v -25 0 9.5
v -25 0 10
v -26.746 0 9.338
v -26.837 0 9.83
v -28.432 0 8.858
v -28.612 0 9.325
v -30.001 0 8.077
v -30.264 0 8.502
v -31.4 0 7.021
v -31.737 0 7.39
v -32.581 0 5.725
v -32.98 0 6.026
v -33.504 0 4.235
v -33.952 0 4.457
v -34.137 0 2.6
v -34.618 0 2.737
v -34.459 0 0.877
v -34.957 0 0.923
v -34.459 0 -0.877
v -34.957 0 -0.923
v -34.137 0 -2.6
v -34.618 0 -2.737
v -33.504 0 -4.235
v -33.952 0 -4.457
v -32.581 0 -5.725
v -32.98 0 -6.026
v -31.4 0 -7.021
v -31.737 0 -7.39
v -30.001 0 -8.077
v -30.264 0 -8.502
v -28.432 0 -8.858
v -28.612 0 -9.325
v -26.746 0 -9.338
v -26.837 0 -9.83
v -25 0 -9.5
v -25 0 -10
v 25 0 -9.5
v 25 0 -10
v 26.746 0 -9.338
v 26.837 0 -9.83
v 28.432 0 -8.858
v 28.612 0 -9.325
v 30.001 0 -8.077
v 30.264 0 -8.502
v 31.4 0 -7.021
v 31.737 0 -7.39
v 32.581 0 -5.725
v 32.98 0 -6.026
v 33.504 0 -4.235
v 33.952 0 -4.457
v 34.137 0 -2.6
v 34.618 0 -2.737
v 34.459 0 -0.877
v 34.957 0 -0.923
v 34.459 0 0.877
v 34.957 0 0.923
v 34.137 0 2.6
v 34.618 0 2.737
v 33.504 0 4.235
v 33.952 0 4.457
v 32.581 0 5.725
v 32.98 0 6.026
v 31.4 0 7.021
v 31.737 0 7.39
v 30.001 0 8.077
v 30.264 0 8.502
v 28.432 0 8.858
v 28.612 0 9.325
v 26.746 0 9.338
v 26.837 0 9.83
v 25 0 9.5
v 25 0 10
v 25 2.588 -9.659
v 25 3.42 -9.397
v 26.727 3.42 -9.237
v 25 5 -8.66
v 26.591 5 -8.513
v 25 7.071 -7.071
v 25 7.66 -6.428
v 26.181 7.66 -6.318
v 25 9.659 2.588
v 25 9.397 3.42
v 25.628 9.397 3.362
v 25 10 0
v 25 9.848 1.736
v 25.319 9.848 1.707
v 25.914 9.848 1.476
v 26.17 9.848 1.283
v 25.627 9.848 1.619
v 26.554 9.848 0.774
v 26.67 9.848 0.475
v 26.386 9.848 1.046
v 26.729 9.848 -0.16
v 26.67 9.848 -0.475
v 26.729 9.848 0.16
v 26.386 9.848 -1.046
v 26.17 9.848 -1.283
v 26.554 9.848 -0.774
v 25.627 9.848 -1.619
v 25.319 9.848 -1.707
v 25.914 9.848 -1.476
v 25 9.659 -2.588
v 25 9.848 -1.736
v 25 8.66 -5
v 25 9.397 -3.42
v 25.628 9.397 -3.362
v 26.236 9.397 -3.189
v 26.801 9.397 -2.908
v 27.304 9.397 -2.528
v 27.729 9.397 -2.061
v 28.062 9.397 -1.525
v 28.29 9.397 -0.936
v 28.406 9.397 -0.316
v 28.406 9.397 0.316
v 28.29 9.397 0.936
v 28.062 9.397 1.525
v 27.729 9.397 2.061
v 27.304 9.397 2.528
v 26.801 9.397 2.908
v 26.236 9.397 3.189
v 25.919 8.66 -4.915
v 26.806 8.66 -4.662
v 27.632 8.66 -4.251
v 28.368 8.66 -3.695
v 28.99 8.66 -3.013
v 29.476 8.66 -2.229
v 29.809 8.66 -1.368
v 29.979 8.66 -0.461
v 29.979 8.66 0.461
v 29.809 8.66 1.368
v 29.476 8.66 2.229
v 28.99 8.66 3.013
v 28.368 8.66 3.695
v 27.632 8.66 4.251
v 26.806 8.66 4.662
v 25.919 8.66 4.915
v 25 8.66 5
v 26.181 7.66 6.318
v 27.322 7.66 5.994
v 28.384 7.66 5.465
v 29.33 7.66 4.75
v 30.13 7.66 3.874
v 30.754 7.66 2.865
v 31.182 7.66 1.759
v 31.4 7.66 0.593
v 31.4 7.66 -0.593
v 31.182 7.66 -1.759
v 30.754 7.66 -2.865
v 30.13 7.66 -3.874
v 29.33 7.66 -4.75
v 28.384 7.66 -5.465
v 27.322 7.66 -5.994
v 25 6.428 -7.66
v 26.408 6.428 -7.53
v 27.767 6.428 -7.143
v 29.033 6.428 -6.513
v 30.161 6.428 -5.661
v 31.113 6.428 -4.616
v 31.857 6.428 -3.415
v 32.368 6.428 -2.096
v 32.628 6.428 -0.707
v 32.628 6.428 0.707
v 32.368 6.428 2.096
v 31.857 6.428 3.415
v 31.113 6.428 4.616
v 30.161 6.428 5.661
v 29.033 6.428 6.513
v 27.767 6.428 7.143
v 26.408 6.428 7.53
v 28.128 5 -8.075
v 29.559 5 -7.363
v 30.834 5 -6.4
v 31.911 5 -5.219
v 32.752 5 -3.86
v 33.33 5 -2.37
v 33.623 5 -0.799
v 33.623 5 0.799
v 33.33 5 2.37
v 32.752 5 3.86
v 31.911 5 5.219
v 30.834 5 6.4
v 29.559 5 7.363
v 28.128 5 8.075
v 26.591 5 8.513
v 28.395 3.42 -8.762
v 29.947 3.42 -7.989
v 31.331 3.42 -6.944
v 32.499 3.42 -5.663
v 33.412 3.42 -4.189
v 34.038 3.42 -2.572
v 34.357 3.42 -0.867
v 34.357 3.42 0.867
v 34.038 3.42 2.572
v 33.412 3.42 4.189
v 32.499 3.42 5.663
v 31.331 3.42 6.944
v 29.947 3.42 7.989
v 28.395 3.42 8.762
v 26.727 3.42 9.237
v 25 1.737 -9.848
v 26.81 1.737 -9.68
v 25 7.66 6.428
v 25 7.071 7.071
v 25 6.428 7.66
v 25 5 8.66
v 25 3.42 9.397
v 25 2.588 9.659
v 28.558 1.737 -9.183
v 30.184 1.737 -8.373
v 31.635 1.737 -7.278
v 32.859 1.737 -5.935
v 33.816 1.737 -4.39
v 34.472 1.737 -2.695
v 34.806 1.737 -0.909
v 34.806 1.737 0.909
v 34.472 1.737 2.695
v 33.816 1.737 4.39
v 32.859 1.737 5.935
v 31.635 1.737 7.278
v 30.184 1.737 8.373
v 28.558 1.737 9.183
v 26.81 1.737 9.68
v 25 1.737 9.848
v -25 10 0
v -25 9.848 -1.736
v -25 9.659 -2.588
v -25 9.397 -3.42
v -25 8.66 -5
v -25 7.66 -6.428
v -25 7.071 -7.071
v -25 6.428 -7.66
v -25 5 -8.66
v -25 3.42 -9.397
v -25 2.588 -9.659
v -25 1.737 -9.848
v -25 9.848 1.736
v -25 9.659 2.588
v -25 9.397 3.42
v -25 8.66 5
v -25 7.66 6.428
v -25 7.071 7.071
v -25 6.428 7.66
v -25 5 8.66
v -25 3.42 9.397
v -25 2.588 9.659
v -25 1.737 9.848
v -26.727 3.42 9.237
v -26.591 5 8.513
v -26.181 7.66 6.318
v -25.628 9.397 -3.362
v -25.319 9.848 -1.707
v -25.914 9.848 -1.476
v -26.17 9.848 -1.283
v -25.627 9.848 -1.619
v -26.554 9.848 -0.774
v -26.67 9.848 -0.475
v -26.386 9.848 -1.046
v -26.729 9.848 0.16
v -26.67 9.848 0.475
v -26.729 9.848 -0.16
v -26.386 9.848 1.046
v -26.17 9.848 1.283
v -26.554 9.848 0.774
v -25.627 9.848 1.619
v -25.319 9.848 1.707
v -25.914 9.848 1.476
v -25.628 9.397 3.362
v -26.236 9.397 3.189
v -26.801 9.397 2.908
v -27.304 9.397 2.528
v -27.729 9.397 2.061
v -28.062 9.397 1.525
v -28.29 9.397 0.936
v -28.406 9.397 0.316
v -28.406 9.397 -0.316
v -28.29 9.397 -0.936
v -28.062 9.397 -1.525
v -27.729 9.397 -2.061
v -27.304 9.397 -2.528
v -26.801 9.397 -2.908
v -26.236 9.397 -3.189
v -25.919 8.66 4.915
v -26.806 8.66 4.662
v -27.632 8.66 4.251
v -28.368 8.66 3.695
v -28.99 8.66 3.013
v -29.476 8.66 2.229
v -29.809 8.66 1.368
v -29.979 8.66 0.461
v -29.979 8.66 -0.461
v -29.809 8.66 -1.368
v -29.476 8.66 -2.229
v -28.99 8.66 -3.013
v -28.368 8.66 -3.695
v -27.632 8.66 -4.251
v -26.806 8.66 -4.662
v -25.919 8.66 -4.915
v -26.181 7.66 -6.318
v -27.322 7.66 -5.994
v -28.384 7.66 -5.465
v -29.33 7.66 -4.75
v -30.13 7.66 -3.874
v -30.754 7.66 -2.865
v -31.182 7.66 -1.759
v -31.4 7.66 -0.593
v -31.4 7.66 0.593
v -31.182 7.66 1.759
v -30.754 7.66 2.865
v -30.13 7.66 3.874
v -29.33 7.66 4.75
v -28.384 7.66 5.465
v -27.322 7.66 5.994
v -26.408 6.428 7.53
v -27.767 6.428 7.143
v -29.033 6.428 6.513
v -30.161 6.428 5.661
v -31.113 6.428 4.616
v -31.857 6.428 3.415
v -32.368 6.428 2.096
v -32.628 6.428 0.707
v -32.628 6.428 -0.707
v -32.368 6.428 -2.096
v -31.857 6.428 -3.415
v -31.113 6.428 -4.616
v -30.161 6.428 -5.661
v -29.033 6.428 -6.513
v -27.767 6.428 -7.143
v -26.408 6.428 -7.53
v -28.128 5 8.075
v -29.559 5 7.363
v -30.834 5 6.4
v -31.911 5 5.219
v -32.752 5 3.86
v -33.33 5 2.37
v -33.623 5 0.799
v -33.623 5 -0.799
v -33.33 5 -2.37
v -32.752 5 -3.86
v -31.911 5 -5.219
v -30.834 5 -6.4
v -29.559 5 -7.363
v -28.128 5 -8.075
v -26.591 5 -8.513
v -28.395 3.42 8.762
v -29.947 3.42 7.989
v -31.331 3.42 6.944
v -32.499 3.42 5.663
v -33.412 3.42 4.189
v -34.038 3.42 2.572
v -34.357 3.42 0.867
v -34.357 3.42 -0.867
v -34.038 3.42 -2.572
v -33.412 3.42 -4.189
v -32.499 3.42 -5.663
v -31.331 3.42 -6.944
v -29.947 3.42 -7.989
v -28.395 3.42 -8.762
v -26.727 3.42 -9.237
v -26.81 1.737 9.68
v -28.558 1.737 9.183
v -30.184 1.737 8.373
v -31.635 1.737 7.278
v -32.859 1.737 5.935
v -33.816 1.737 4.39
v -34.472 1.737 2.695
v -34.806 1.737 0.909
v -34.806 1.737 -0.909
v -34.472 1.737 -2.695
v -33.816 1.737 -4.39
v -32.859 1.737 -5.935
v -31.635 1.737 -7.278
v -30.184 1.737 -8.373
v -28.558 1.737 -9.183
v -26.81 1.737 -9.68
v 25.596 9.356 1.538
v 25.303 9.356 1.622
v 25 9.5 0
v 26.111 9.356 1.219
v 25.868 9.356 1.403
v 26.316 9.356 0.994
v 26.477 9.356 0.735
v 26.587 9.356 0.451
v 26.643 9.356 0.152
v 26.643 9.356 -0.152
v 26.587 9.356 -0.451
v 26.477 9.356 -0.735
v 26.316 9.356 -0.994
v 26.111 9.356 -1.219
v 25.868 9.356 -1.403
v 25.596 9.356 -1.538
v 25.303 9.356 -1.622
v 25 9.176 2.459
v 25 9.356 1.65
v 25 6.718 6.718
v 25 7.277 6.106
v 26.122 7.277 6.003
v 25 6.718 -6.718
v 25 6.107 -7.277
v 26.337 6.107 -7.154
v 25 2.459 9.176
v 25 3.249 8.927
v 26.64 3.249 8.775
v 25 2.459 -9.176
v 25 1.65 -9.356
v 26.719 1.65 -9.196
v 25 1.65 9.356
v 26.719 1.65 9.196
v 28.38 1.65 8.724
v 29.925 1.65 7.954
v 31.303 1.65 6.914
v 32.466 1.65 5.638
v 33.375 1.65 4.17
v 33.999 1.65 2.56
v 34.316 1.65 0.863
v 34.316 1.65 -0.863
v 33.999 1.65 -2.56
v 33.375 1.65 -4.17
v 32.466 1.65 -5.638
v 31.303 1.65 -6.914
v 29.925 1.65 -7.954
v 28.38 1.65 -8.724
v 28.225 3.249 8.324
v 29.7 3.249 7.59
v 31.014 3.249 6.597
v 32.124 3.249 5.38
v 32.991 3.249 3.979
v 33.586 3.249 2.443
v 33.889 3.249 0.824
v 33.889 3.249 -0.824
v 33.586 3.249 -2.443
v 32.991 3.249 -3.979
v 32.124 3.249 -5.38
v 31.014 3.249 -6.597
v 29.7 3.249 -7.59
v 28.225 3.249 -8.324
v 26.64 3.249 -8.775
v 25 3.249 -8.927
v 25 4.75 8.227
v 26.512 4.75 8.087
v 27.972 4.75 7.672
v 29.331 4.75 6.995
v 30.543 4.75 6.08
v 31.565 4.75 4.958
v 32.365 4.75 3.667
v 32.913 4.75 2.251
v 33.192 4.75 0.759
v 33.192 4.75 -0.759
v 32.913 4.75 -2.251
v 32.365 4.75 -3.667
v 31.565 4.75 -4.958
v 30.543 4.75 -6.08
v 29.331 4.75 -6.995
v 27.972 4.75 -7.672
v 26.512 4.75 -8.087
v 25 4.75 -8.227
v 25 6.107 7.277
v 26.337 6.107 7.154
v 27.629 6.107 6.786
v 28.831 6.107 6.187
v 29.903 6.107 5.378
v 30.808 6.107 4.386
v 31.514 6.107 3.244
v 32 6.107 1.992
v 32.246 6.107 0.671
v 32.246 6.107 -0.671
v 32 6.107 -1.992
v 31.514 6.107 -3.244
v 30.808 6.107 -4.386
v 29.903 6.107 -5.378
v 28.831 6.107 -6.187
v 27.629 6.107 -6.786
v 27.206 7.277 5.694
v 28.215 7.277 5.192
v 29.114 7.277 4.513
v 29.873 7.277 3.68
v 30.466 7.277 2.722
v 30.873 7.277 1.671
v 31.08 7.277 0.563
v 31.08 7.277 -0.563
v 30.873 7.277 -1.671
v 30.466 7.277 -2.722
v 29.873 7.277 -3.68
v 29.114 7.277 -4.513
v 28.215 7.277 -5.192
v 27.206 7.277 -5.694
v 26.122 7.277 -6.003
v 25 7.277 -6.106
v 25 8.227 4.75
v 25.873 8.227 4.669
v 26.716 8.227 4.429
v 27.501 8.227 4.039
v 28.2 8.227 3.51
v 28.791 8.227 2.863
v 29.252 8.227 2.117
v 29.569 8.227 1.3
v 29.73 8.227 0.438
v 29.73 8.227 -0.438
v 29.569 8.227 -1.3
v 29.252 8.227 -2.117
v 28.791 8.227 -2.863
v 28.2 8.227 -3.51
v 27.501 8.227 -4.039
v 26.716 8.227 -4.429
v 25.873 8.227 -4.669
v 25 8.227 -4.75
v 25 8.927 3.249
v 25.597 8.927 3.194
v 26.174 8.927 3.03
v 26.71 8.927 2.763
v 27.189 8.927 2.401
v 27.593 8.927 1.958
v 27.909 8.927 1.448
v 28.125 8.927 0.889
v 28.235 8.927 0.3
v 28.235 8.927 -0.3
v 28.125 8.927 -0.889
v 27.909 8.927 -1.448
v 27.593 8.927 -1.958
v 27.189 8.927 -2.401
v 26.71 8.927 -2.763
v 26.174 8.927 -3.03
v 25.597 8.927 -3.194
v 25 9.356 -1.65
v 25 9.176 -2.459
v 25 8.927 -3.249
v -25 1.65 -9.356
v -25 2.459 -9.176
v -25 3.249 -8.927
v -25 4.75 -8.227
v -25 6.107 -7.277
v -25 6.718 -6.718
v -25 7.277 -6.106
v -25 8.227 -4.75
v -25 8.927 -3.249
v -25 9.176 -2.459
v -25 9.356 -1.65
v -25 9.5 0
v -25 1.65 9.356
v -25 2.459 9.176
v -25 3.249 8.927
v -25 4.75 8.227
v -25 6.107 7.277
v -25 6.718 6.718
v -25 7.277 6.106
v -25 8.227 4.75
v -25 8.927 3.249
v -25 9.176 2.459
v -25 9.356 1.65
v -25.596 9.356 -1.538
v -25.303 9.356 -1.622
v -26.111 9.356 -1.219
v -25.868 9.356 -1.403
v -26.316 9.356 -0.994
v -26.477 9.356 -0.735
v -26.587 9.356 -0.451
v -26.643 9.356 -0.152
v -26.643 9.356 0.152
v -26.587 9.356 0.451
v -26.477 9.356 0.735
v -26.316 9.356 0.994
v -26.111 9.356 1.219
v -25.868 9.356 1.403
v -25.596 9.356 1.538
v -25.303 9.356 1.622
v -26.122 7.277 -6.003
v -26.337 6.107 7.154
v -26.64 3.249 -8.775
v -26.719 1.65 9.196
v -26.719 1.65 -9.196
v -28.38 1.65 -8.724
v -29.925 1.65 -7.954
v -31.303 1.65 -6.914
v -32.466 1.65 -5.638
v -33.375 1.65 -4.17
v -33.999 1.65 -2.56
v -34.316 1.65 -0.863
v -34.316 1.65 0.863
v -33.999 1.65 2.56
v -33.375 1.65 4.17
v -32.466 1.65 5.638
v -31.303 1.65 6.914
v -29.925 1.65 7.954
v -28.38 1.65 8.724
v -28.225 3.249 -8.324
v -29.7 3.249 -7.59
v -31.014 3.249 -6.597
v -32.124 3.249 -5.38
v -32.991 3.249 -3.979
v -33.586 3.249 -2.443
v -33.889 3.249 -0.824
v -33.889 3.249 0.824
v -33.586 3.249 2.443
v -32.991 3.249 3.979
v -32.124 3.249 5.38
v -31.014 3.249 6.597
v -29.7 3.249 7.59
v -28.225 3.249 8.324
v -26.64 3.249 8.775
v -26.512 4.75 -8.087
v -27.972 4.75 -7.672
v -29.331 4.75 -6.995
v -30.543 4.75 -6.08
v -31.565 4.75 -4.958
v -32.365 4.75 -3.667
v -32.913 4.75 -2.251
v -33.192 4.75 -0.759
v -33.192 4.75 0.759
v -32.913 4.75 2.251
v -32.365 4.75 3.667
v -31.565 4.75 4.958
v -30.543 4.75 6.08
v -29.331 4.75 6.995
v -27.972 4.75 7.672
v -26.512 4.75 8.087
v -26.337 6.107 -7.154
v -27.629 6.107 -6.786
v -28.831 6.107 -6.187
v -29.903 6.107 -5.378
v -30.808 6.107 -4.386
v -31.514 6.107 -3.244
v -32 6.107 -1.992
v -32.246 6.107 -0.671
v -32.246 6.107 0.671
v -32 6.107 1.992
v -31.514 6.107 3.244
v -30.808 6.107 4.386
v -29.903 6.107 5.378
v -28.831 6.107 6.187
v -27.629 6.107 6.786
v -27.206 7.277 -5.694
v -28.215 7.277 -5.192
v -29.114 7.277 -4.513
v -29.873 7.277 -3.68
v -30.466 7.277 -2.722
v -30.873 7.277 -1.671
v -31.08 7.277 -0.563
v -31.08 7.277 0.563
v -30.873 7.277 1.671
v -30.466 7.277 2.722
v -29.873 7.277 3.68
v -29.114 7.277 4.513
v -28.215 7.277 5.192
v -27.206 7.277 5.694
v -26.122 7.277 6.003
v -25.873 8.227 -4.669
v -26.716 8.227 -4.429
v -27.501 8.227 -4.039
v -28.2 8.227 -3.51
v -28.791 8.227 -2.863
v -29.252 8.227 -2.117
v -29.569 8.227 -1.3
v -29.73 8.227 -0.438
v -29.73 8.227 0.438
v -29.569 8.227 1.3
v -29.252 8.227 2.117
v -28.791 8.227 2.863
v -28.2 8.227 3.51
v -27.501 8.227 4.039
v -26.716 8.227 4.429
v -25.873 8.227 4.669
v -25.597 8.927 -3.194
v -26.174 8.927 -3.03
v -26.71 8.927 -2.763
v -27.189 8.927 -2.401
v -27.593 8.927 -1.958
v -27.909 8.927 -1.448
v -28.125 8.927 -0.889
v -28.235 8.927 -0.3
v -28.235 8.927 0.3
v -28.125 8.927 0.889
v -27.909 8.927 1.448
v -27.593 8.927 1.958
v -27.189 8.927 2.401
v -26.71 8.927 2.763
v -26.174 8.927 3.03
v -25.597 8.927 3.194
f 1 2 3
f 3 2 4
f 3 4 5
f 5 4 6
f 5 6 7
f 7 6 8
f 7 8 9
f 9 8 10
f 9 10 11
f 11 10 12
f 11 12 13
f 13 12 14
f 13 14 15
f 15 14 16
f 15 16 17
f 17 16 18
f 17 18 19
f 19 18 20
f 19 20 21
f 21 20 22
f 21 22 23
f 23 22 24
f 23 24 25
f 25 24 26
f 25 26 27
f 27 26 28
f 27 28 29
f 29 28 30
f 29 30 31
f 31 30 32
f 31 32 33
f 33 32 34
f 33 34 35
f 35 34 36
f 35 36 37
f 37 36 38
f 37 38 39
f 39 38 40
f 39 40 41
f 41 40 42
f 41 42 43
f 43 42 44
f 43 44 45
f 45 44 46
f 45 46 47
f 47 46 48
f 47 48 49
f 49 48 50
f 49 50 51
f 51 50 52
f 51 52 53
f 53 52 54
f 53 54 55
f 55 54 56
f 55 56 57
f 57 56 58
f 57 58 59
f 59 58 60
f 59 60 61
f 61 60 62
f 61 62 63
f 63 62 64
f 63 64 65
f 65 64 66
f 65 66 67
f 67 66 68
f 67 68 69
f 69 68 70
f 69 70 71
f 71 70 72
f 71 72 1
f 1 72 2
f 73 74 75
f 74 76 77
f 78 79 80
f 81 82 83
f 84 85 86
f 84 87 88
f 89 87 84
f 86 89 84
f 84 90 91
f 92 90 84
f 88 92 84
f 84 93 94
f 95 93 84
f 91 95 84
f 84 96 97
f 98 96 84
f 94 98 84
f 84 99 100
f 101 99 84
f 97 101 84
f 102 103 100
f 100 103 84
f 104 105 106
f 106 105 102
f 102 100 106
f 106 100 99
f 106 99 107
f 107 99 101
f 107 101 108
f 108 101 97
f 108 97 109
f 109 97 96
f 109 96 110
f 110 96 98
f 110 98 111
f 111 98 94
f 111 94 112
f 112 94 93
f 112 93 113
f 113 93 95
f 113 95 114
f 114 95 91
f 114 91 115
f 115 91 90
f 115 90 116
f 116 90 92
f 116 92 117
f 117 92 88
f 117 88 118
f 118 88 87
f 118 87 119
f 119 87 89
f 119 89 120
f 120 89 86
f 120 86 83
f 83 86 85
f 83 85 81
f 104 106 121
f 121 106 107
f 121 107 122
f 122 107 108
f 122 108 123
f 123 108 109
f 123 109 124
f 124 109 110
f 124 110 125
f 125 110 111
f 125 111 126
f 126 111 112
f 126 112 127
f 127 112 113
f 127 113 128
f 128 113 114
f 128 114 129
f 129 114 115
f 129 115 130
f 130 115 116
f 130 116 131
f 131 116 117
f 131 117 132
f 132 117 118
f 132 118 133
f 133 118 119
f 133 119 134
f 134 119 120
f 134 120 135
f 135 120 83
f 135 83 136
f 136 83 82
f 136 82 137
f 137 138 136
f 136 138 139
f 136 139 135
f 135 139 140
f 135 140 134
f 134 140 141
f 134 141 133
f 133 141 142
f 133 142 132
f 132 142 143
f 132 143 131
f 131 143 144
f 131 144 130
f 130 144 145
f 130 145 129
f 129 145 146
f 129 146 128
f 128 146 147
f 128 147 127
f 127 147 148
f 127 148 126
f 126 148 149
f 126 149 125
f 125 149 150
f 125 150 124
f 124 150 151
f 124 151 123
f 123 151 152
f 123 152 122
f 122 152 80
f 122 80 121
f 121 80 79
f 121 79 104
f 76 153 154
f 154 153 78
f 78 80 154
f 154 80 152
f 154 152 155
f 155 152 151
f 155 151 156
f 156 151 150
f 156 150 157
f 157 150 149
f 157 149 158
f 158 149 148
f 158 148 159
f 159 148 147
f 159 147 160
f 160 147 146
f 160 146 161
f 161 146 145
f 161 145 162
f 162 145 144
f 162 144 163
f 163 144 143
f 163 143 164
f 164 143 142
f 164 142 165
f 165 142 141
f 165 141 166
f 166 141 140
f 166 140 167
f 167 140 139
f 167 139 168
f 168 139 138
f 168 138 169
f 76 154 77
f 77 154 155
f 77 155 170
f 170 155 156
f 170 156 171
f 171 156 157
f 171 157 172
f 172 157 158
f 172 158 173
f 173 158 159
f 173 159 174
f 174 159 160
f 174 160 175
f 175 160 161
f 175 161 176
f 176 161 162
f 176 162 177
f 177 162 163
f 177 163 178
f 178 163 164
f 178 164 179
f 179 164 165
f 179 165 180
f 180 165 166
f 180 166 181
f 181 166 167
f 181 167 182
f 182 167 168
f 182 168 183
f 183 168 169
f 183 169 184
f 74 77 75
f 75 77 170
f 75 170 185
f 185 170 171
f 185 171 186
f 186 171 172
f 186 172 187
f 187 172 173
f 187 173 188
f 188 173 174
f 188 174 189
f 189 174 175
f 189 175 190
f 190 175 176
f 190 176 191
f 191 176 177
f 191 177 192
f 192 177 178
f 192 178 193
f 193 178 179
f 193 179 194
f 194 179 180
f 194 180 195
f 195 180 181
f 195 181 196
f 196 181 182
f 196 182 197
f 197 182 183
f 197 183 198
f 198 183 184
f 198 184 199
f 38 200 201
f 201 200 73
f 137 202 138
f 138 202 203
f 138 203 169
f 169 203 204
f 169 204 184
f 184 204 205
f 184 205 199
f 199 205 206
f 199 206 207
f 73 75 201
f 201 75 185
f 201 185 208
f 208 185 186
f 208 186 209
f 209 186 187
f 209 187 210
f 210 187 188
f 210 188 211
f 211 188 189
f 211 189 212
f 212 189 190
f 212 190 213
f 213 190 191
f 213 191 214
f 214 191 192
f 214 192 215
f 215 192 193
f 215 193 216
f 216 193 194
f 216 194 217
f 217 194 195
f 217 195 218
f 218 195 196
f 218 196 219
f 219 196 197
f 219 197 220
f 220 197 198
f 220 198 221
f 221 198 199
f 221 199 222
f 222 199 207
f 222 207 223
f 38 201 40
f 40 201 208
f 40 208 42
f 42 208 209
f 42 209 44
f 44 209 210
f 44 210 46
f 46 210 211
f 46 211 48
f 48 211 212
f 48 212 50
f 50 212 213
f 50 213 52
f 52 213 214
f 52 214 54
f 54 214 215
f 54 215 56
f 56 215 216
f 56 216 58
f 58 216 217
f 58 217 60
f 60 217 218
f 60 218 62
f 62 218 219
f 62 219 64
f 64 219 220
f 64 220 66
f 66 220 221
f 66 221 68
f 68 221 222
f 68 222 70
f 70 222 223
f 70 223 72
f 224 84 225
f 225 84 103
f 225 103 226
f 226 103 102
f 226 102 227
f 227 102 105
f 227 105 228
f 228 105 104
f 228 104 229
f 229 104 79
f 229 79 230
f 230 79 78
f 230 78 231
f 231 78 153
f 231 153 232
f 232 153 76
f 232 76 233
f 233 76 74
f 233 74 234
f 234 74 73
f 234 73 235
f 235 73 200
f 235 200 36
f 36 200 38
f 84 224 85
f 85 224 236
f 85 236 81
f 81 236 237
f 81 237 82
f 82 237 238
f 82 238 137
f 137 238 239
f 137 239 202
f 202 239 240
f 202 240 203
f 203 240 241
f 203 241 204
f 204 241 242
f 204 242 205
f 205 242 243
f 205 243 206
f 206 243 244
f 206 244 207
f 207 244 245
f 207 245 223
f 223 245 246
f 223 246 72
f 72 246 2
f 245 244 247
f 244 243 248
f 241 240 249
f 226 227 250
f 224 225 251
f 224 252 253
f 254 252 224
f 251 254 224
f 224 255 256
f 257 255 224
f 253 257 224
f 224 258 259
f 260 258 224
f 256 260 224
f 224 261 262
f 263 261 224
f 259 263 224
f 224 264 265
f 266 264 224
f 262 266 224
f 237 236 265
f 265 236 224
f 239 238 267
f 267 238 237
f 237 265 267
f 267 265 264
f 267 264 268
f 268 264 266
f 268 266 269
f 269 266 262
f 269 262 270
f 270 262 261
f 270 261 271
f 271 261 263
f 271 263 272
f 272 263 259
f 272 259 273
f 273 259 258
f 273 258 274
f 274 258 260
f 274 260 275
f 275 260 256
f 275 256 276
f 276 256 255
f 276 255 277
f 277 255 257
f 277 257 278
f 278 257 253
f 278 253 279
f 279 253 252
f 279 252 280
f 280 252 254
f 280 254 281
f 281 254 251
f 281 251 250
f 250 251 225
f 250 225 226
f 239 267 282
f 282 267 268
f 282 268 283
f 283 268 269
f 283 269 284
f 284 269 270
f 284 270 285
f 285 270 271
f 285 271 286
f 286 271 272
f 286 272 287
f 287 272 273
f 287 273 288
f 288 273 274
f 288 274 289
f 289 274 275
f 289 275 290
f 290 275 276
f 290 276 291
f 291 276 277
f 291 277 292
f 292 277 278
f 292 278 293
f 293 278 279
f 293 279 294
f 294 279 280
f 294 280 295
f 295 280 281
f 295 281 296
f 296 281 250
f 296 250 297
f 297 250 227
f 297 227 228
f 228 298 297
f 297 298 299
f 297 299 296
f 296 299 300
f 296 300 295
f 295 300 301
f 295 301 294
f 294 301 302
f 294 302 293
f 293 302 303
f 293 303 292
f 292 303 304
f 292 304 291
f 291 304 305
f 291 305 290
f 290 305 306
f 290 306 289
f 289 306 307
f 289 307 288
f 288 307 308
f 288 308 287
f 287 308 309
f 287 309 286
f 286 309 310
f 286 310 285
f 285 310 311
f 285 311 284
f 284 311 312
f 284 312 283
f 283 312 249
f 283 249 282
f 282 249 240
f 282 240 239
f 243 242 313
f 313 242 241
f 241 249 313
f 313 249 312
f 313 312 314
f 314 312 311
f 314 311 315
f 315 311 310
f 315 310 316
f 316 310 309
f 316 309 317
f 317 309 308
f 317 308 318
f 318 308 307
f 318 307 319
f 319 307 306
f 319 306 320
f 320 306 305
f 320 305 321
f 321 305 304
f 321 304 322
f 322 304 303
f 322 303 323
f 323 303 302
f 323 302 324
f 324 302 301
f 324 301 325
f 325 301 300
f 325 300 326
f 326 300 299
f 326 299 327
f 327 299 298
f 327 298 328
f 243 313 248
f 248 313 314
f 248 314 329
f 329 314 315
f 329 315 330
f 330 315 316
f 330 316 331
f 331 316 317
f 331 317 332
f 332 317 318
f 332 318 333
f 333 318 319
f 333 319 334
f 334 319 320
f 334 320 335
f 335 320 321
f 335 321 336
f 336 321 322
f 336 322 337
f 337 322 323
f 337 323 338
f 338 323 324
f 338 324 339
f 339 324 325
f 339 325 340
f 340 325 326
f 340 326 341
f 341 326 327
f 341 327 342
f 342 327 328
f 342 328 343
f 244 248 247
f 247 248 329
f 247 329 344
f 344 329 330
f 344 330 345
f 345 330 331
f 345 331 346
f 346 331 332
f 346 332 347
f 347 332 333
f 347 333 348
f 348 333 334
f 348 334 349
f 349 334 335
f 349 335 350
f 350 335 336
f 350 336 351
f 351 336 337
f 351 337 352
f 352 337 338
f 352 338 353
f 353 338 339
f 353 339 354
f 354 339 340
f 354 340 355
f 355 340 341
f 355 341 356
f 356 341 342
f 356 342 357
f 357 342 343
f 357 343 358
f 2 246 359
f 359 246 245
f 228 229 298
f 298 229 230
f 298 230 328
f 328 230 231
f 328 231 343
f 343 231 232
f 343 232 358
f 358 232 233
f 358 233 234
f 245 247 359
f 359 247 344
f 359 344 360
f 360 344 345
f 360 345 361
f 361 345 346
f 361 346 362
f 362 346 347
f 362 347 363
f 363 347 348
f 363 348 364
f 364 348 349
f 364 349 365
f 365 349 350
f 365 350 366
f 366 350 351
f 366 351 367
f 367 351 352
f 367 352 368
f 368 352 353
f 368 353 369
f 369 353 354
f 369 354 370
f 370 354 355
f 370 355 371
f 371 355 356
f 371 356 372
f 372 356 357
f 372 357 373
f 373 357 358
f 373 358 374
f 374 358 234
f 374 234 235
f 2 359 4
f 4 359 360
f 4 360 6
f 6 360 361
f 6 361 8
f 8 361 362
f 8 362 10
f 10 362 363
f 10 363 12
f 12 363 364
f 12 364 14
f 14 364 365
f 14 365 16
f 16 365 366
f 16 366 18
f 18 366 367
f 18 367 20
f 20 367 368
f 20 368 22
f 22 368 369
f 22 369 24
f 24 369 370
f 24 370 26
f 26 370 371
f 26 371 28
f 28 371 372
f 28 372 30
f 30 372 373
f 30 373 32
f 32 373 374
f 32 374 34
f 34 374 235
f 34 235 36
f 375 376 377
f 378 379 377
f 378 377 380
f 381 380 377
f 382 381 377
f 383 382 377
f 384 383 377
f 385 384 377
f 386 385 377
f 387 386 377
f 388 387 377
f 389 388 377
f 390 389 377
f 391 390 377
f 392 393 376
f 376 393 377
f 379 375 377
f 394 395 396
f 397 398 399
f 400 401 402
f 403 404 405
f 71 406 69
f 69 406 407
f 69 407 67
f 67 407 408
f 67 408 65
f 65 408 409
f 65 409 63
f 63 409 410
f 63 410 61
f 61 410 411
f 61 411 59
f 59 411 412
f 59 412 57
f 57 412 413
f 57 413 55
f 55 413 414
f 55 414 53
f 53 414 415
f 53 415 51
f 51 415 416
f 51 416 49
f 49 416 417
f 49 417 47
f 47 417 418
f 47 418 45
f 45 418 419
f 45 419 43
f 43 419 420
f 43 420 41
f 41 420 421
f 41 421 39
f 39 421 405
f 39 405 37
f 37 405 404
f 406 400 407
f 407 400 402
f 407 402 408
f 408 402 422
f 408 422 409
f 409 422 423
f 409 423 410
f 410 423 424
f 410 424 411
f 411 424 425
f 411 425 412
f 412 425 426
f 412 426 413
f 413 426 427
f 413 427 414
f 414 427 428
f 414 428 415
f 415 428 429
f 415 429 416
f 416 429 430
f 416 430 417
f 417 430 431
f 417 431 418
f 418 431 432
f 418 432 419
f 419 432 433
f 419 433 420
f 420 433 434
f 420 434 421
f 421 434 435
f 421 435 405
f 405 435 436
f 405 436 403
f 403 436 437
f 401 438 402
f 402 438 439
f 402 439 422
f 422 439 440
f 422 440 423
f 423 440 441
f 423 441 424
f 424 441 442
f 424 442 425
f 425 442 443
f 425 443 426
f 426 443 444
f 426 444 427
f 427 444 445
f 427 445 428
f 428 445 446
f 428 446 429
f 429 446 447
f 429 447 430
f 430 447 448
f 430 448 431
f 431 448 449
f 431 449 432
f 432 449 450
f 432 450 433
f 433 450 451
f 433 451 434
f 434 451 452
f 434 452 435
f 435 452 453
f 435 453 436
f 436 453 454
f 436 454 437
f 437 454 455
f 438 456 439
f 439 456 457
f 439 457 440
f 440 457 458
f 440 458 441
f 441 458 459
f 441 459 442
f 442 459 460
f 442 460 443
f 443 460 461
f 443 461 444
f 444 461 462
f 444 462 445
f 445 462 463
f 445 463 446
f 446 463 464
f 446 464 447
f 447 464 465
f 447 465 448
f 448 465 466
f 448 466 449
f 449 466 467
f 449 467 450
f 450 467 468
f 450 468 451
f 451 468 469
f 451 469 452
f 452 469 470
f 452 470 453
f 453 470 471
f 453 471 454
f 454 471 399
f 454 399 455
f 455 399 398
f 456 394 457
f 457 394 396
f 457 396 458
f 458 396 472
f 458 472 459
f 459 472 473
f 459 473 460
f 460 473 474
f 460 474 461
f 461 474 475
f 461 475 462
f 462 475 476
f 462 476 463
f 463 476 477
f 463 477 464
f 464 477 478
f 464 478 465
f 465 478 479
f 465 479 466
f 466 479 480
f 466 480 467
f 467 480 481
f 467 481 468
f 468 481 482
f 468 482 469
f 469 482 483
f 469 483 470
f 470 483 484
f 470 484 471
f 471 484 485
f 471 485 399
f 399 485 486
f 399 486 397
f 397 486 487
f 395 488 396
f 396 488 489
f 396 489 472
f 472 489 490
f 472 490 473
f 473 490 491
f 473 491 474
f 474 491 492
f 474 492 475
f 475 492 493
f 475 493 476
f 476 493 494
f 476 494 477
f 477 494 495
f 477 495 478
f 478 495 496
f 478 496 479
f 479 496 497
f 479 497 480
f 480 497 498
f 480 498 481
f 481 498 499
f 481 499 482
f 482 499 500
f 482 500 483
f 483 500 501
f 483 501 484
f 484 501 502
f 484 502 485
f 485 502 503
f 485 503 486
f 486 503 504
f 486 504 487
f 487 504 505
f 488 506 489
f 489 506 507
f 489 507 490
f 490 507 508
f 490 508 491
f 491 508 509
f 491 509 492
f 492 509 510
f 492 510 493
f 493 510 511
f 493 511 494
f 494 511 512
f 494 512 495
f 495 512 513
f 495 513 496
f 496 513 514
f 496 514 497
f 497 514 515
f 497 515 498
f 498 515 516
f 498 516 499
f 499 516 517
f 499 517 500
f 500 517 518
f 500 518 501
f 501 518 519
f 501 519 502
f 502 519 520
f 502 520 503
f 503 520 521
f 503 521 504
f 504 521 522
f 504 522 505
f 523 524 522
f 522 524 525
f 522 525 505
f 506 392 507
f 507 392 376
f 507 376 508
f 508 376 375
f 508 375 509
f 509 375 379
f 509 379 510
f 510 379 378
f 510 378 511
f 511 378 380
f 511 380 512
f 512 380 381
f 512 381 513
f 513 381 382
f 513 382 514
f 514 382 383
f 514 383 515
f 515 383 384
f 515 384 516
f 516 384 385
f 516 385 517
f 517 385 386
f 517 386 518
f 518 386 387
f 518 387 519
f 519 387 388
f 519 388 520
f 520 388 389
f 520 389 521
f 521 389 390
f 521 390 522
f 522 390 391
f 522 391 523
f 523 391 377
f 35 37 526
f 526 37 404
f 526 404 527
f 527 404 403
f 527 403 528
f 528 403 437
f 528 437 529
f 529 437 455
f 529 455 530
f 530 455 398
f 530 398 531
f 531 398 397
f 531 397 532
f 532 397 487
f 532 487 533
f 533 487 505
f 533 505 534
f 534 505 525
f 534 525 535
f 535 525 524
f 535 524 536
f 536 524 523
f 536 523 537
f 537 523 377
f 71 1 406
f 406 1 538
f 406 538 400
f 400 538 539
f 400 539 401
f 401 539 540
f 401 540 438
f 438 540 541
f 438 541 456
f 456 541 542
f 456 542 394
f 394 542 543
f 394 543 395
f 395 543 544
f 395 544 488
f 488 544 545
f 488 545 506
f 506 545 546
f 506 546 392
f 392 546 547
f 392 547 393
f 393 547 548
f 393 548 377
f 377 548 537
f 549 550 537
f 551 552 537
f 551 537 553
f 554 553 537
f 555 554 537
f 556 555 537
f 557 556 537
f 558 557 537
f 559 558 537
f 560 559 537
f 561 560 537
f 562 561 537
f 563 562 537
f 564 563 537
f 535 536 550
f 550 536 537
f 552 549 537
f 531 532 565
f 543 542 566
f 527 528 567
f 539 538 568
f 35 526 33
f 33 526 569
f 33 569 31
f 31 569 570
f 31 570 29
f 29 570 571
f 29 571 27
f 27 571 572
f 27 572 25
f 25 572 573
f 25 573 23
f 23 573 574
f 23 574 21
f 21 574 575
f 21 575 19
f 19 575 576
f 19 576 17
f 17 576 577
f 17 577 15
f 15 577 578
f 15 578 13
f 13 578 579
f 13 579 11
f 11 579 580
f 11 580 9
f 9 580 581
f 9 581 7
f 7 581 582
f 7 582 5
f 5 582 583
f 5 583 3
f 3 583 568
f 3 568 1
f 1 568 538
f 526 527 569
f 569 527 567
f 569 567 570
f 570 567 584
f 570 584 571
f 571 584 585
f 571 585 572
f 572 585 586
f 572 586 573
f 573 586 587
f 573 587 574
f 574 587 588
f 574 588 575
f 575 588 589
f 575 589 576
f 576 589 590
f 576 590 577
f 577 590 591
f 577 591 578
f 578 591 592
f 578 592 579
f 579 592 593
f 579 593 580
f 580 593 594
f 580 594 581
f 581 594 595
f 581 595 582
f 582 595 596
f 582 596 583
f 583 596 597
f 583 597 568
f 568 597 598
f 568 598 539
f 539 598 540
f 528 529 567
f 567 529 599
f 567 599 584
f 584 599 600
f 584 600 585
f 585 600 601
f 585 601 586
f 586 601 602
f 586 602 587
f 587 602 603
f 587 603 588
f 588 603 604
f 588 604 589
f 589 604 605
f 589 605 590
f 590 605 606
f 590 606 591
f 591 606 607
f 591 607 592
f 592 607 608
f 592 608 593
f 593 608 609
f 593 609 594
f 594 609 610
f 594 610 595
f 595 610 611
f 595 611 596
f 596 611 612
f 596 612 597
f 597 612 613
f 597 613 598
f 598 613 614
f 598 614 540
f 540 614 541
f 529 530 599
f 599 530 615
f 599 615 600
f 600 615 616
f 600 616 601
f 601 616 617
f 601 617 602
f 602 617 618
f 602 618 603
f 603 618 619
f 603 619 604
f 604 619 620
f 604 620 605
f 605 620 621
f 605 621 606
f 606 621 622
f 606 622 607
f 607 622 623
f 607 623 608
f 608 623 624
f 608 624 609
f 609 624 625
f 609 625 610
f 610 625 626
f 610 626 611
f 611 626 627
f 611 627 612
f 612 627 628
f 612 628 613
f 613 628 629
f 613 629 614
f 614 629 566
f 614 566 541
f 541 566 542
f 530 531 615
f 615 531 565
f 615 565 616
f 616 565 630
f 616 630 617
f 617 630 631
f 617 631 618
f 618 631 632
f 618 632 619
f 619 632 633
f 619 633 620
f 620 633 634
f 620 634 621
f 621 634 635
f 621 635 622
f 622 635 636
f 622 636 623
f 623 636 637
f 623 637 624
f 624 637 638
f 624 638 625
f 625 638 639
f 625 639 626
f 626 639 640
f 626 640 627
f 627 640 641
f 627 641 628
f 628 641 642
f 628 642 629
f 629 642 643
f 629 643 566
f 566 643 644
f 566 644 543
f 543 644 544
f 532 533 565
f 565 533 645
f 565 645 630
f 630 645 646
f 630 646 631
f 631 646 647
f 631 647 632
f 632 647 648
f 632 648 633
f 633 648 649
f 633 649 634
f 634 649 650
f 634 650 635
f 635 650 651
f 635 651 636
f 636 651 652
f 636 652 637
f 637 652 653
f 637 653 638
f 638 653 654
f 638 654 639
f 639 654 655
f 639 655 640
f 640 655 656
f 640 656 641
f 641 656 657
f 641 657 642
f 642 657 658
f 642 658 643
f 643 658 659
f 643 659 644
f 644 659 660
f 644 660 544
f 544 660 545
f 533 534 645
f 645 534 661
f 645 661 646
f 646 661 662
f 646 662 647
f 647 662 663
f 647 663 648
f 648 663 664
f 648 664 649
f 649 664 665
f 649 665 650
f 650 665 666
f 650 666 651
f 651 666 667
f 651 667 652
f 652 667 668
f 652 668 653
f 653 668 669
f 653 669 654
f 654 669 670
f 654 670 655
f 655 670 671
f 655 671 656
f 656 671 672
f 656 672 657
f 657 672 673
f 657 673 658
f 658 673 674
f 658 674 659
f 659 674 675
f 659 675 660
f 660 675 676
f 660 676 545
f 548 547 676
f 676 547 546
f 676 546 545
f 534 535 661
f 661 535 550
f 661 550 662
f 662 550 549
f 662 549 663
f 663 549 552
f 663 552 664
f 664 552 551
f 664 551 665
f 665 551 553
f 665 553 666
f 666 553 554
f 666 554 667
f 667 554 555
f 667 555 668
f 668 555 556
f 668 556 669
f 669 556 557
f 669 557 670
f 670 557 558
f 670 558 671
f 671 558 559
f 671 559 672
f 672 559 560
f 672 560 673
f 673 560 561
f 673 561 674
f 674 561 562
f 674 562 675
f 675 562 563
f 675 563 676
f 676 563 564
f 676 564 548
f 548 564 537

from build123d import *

# Parameters (mm, degrees)
BOSS_EXTRUDE1_DEPTH = 10
FILLET1_R           = 10


# Read off the part's stored shape, not the designer's step: Shell1
with BuildPart() as part:
    # Sketch1 → Boss-Extrude1 (new body)
    with BuildSketch(Plane(origin=(0, 0, 0), x_dir=(1, 0, 0), z_dir=(0, 1, 0))):
        with BuildLine():
            Line((-25, 10), (25, 10))
            ThreePointArc((25, 10), (35, 0), (25, -10))
            Line((25, -10), (-25, -10))
            ThreePointArc((-25, -10), (-35, 0), (-25, 10))
        make_face()
    extrude(amount=BOSS_EXTRUDE1_DEPTH)

    # Fillet1
    fillet1_edges = [part.edges().sort_by_distance(p)[0] for p in [
        (-35, 10, 0),
        (0, 10, -10),
        (35, 10, 0),
        (0, 10, 10),
    ]]
    fillet(fillet1_edges, radius=FILLET1_R - 0.0001)  # a hair under: the kernel refuses the full size

    # Shell1 outline → Shell1 (revolve, cut)
    with BuildSketch(Plane.YX):
        with BuildLine():
            Line((9.5, -25), (9.5, 25))
            ThreePointArc((9.5, 25), (6.717514421, 31.717514421), (0, 34.5))
            Line((0, 34.5), (0, -34.5))
            ThreePointArc((0, -34.5), (6.717514421, -31.717514421), (9.5, -25))
        make_face()
    revolve(axis=Axis((0, 0, 0), (1, 0, 0)), mode=Mode.SUBTRACT)


solid = part.part
